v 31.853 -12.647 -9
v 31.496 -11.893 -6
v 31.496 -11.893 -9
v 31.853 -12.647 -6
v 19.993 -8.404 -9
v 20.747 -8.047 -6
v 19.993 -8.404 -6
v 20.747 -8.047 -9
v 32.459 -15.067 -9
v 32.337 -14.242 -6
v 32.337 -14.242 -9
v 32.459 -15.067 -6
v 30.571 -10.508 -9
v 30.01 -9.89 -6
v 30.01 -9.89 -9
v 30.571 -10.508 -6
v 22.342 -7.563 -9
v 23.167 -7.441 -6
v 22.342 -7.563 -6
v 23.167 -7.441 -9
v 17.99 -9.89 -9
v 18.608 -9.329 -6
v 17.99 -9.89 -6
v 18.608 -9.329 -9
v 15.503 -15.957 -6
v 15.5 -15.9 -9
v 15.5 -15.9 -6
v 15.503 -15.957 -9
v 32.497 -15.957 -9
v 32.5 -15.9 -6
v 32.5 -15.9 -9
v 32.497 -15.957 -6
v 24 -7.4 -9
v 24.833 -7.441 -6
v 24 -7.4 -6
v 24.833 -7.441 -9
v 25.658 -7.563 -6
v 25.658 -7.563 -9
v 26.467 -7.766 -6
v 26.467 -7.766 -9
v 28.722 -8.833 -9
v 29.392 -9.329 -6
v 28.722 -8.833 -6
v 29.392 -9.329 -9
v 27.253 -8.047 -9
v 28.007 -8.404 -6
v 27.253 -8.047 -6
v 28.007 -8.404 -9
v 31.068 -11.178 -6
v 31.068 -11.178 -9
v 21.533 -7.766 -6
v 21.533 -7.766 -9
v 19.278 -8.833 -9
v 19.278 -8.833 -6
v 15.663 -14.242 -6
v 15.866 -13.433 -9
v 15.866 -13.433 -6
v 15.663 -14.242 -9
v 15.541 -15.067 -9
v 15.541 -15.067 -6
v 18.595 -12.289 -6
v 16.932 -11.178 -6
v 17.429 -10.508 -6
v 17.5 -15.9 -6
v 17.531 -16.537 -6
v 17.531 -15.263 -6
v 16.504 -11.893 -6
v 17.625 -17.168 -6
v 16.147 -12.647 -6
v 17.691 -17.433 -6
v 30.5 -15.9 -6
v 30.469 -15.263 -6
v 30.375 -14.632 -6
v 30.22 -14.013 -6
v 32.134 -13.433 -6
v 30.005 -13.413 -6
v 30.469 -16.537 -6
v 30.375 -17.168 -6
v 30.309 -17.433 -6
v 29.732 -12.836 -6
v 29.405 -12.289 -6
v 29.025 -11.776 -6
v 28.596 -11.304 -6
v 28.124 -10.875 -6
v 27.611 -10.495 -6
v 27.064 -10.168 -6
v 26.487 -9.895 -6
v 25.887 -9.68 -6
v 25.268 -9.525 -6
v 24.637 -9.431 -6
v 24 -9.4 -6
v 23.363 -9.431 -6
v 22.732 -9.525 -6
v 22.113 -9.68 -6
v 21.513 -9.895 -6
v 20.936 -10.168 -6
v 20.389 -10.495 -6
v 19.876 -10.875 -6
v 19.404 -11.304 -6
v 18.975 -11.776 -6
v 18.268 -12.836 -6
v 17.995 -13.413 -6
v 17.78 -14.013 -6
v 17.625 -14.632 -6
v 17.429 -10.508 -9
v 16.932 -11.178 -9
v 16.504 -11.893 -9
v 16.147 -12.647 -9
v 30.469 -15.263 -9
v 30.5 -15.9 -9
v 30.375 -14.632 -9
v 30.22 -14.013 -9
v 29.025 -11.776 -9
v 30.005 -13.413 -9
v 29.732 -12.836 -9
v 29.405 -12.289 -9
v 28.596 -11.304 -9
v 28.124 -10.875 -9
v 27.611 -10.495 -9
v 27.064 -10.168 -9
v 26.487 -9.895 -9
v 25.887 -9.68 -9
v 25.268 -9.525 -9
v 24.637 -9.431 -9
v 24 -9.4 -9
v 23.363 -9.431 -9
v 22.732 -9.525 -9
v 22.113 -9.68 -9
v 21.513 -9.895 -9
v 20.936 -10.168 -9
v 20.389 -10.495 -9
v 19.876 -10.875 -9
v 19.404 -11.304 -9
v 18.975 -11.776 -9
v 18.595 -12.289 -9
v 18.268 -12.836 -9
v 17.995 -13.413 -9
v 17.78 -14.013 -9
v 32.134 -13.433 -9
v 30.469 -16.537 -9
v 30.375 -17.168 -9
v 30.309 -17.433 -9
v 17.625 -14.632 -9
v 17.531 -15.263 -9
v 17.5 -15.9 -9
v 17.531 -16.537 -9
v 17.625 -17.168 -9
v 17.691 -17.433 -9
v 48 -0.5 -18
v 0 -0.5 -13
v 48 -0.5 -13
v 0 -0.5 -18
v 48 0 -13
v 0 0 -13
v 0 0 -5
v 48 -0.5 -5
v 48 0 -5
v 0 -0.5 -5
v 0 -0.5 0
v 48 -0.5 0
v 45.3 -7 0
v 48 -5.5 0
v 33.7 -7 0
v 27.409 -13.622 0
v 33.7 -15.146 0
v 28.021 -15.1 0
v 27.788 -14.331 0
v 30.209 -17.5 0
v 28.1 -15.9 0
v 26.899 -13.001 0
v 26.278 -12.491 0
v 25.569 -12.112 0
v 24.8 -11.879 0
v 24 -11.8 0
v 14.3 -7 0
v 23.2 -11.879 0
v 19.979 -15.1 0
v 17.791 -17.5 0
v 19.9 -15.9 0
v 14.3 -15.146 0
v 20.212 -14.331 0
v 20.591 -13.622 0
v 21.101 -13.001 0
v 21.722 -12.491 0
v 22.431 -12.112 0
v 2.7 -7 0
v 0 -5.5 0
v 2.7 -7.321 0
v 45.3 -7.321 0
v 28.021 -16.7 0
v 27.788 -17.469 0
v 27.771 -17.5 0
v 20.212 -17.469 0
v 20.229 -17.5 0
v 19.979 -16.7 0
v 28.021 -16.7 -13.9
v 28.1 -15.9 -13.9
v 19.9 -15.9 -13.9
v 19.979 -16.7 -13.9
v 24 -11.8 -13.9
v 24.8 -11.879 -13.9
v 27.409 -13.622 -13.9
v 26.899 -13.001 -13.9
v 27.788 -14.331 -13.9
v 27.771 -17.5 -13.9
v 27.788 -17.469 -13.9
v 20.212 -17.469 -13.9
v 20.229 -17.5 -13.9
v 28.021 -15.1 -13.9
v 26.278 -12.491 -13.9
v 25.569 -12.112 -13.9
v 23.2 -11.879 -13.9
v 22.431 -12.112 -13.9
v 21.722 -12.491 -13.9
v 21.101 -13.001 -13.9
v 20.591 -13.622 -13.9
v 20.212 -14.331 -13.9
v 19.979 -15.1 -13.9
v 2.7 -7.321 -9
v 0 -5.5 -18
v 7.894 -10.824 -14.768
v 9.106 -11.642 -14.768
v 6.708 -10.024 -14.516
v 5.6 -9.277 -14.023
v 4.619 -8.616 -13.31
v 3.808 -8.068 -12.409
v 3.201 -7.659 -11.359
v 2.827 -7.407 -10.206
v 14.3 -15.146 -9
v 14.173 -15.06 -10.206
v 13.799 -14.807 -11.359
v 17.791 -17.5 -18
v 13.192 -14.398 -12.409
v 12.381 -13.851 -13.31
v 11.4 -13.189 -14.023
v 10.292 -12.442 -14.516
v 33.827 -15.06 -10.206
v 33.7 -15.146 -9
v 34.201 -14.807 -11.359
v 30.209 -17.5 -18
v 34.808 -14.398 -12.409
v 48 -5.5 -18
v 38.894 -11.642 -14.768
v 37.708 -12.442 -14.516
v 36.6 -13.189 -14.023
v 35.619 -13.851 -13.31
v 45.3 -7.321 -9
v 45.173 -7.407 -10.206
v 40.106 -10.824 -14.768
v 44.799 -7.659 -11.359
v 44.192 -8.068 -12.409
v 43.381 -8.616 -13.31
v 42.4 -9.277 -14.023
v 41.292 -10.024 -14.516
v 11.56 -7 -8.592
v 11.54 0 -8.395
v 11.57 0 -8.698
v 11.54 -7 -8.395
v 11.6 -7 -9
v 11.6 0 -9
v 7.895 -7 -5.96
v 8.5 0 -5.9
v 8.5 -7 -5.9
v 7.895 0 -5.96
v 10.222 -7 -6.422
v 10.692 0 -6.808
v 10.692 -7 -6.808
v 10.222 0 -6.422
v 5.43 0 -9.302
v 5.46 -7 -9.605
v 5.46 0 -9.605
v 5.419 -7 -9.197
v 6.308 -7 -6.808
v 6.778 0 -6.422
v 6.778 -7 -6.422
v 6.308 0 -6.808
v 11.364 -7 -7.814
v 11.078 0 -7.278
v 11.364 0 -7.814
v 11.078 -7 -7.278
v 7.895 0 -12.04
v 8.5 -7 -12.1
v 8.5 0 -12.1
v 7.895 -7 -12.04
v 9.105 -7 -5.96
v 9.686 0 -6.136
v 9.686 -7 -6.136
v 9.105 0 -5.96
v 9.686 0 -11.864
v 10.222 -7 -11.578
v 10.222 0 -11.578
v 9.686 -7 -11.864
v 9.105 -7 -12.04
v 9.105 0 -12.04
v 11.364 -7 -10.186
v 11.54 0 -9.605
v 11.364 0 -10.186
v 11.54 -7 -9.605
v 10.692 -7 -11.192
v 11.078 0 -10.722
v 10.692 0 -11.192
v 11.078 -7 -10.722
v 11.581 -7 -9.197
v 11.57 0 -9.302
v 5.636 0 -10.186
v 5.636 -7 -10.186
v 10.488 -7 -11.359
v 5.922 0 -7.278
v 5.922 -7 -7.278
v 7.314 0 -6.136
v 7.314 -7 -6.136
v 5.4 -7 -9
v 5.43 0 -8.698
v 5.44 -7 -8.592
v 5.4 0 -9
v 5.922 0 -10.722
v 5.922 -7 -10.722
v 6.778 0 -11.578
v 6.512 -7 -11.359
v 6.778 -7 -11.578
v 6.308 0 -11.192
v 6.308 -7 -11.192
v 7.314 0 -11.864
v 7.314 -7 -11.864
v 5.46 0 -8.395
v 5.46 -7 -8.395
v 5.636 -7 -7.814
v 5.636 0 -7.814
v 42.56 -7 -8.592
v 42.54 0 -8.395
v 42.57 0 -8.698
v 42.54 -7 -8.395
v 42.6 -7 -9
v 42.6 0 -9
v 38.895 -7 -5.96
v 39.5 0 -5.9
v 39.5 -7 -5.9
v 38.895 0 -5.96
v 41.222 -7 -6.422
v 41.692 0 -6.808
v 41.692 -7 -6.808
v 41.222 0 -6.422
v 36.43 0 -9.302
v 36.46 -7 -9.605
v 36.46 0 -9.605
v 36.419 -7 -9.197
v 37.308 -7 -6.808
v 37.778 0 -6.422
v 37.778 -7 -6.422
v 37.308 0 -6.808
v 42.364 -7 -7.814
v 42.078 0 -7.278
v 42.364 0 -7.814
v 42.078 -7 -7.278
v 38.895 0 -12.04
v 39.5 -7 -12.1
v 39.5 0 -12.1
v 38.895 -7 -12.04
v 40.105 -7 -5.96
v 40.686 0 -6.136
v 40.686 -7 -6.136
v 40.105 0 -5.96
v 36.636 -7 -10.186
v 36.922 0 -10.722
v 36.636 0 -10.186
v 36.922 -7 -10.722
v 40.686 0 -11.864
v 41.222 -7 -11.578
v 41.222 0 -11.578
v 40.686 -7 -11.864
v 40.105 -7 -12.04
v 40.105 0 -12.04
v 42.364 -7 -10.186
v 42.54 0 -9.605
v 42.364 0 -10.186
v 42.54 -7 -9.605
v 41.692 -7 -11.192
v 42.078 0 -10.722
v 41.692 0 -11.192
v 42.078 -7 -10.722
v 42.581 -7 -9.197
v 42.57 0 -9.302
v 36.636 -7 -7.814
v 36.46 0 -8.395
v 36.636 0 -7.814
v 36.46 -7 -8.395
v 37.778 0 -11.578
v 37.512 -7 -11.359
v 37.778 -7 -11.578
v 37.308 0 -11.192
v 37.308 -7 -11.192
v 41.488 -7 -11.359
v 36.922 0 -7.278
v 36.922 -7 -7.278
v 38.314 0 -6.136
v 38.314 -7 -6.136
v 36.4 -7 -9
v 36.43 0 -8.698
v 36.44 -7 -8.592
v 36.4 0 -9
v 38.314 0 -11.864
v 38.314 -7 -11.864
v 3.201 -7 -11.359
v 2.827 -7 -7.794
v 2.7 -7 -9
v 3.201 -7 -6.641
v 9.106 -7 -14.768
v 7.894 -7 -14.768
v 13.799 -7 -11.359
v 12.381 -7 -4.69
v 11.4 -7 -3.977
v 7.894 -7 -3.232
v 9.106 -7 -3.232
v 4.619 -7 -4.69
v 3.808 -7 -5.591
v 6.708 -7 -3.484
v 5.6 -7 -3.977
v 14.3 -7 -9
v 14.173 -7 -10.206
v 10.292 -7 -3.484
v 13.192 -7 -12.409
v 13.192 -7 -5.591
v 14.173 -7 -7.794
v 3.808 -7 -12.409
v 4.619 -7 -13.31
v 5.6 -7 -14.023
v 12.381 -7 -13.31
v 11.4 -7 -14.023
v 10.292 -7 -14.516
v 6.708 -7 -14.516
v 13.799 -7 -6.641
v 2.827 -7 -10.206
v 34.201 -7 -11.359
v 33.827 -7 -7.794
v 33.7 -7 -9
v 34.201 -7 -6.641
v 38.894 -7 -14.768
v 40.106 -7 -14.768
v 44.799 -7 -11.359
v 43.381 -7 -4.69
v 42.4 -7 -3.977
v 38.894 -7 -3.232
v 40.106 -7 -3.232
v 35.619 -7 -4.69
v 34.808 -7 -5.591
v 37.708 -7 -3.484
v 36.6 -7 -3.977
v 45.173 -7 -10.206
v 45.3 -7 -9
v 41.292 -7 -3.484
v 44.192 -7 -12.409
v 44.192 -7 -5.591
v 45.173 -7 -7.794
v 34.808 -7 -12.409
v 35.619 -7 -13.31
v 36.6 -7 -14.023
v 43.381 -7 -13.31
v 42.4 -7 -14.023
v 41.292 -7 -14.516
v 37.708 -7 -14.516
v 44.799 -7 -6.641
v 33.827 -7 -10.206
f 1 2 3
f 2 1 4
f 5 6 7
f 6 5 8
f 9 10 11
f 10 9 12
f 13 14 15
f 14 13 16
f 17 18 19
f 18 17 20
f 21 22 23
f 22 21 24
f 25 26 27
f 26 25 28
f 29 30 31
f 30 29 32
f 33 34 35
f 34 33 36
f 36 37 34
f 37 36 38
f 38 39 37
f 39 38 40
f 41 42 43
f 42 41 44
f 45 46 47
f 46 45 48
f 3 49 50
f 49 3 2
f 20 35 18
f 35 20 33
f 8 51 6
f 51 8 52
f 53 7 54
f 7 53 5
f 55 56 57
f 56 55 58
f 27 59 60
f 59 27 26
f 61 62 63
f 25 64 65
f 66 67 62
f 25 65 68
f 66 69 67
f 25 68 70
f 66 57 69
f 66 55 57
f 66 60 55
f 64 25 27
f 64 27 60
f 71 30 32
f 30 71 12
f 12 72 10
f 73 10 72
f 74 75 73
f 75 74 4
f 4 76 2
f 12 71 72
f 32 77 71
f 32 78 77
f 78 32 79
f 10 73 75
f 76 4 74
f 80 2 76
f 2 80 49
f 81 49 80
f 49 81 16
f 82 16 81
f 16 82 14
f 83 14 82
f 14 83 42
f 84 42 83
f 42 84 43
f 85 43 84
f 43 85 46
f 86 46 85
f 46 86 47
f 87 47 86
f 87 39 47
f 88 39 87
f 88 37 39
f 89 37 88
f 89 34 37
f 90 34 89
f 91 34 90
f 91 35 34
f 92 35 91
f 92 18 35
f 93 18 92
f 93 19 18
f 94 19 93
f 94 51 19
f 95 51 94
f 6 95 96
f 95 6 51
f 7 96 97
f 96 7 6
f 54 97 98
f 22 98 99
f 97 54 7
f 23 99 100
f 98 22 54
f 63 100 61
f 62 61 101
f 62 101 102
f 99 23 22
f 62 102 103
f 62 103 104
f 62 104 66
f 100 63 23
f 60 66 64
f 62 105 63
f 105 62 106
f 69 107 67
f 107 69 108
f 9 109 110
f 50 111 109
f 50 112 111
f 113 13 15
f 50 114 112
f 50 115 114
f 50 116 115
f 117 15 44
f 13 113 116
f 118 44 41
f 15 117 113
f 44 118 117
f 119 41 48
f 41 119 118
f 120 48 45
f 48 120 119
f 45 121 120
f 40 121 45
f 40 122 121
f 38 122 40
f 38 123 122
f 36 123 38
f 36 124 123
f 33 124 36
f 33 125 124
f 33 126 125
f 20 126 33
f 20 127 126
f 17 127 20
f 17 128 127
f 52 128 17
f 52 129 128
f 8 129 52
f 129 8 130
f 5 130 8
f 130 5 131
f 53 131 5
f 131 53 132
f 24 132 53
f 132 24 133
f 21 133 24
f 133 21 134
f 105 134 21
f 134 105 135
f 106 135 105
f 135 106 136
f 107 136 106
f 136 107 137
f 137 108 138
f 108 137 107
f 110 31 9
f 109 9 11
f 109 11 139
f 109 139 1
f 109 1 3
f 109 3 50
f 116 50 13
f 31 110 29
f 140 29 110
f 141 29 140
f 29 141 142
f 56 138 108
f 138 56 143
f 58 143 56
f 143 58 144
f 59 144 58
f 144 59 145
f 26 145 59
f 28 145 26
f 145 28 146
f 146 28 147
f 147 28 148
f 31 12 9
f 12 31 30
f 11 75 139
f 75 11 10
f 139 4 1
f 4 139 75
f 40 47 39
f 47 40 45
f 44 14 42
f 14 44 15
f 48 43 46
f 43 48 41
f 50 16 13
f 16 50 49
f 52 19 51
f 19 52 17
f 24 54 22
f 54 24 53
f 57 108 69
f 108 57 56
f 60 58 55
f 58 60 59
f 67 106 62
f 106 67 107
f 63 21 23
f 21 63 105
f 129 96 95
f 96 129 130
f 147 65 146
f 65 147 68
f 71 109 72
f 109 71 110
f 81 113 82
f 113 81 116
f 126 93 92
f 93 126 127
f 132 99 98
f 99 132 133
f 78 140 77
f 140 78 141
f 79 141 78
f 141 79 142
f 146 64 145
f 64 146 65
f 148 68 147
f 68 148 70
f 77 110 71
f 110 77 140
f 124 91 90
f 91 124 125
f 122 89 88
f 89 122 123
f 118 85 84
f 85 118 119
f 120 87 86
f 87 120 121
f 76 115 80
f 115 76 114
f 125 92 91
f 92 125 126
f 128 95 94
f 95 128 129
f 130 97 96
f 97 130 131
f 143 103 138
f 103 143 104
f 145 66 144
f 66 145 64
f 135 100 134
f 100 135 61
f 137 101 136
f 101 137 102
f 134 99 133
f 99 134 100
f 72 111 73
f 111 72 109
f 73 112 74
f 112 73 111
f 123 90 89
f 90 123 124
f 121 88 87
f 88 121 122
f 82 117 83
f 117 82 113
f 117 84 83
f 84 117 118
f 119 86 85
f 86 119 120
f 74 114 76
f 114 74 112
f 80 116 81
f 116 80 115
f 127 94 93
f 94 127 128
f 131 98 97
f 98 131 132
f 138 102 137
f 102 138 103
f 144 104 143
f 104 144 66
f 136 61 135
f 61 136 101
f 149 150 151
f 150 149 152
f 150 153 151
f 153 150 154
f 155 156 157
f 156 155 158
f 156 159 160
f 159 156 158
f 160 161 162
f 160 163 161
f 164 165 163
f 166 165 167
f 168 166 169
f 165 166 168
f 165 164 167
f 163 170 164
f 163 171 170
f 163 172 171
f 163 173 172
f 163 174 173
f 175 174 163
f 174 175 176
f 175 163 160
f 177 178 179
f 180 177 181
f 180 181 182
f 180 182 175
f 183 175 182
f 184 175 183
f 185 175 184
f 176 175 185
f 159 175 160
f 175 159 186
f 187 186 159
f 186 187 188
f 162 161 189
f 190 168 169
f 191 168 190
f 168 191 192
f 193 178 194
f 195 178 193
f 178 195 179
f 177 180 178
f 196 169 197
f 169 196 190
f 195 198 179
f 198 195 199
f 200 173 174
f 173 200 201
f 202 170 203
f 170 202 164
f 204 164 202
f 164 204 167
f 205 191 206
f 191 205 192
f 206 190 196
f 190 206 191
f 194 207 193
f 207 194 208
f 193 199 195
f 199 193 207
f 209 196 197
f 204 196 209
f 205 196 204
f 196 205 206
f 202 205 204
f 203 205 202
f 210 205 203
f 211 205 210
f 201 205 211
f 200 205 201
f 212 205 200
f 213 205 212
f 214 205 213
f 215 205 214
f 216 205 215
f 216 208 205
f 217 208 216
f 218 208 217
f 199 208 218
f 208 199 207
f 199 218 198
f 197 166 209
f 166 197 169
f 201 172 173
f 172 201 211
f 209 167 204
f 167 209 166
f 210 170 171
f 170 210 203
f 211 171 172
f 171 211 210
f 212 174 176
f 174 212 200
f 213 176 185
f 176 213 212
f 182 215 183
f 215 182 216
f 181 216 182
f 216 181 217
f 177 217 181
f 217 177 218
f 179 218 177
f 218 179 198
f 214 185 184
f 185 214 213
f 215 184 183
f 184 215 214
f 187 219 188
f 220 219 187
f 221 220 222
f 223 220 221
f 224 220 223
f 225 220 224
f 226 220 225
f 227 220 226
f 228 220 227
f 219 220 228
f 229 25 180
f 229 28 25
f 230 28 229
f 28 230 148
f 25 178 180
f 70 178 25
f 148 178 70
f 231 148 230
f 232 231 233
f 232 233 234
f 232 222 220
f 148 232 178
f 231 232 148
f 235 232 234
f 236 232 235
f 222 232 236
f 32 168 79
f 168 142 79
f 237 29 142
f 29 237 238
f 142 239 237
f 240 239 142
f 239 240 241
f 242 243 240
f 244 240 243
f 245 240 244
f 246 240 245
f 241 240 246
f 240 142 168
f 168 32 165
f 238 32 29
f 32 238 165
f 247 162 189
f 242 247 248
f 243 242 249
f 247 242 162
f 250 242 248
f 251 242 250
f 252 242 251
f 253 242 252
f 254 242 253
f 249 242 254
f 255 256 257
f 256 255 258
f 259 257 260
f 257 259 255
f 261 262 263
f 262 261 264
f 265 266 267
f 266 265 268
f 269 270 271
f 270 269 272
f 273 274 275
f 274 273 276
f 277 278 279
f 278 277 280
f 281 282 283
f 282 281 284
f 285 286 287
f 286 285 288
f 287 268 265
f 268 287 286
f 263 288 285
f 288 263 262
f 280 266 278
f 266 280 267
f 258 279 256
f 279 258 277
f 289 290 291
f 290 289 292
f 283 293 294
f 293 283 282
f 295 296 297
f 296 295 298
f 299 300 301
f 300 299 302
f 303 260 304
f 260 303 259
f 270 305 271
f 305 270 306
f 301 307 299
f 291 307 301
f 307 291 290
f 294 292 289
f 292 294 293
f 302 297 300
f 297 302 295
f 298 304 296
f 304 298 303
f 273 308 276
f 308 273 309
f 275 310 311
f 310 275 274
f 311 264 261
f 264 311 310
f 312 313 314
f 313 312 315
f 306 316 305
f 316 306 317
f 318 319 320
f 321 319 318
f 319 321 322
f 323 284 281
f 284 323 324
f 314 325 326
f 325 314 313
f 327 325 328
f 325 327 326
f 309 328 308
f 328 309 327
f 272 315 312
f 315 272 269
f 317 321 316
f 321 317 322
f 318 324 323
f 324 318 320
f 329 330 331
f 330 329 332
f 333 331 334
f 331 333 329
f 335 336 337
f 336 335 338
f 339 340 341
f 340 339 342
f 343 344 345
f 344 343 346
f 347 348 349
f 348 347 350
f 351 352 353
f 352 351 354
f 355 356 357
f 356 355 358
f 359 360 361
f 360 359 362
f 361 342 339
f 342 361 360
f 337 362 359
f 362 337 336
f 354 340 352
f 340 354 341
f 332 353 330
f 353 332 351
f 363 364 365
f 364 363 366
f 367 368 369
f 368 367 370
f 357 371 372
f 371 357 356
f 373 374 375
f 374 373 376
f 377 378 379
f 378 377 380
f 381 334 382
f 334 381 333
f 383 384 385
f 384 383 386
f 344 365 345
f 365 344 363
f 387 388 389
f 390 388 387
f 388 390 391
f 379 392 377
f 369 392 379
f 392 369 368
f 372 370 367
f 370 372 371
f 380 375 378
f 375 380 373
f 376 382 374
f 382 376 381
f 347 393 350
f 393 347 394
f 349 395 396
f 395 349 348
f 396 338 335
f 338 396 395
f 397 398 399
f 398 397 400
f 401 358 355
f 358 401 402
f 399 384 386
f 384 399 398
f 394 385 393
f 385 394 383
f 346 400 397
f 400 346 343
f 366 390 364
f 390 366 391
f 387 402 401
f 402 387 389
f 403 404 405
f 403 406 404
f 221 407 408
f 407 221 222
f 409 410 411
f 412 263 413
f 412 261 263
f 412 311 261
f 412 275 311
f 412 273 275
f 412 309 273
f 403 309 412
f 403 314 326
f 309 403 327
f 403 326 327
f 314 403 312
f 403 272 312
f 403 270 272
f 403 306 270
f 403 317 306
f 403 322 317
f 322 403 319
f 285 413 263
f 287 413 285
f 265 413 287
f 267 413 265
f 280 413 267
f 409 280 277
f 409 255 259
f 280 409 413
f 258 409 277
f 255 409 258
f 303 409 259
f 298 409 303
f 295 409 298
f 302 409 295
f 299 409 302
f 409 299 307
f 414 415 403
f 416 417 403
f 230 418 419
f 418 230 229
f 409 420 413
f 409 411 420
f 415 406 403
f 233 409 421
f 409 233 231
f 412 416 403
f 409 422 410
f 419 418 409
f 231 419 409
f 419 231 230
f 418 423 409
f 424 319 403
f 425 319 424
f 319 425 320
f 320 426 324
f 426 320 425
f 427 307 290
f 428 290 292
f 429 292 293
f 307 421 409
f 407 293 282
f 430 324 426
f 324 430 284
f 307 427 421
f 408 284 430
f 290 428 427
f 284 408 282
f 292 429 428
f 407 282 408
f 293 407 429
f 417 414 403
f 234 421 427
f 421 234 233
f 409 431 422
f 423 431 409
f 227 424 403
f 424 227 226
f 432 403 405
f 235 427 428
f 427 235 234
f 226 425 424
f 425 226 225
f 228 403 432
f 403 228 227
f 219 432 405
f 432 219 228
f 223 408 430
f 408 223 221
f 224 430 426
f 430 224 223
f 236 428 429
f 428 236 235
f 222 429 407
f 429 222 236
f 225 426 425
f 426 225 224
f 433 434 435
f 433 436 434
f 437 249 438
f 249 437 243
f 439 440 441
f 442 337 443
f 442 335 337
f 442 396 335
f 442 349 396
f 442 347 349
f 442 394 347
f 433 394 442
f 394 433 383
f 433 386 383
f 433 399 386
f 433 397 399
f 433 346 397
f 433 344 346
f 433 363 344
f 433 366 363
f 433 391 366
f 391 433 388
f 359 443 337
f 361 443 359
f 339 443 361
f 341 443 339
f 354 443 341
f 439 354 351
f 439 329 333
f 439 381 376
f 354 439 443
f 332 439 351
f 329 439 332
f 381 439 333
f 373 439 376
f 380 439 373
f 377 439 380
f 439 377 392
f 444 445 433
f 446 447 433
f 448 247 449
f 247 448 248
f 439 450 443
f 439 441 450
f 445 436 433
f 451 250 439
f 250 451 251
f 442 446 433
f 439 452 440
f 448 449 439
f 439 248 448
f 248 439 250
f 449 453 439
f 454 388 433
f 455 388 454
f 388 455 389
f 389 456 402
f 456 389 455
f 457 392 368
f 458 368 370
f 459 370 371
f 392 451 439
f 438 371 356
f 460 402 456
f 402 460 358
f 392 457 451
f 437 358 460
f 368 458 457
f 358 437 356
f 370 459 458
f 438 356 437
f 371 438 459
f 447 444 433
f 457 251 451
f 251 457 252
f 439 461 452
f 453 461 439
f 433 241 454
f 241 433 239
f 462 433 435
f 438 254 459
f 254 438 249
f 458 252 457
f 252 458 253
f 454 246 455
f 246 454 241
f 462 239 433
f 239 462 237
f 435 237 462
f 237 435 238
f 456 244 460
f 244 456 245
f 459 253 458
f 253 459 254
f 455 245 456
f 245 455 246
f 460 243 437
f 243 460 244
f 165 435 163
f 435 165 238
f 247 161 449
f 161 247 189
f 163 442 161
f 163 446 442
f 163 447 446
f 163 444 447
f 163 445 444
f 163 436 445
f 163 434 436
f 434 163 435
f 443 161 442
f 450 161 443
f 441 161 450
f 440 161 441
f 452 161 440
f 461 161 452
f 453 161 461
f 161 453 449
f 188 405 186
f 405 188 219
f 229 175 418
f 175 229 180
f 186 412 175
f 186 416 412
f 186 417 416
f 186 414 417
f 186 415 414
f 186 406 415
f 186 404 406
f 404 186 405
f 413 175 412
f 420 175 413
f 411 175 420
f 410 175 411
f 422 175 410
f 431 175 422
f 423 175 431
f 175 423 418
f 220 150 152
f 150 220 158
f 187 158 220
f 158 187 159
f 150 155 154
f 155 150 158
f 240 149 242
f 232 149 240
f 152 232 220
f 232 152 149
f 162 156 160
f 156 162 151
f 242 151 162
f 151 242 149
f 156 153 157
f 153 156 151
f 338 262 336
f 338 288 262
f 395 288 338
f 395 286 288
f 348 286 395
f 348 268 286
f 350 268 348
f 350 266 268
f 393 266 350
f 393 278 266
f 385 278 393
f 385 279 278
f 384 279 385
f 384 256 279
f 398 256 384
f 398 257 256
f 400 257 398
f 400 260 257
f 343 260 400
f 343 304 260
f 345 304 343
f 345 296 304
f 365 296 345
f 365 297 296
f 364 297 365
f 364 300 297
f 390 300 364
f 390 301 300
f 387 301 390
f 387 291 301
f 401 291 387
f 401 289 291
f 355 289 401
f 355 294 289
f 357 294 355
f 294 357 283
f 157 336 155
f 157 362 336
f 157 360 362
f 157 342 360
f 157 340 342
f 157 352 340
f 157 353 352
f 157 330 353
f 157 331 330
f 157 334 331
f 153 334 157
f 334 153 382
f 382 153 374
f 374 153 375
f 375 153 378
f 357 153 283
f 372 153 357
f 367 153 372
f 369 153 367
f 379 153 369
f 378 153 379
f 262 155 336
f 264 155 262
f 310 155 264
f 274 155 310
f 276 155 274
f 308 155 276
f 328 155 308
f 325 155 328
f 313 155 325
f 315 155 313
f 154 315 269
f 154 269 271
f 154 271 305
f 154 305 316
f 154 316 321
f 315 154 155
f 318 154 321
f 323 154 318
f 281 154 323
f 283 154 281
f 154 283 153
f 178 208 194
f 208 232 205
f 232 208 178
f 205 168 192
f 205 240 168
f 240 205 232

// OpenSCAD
// file: ../configuration.scad
/*
	Konfiguracni soubor 3D tiskarny RebeliX X2
	
	Sledujte nas na:		  
			www.RepRap4U.cz
			www.facebook.com/RebeliX.cz
			https://twitter.com/reprap4u
			https://plus.google.com/+Reprap4uCz-3Dtiskarna-RebeliX
*/

/*================ Slic3r nastaveni ==========================*/

// Vyska vrstvy pro tisknuti dilu [mm]
layer_height = 0.3;

// Sirka vytlacovaneho materialu [mm]
extrusion_width = 0.66; //Slic3r->Print Settings->Advanced->Default extrusion width

/*==================== M6 sroub ==============================*/

// Rezerva prumeru hlavy sroubu [mm]
space = 1;

// Prumer hlavy M6 sroubu (pricte se rezerva) [mm]
M6_head_diameter = 10.6+space;
//M6_head_diameter = 12+space;

// Vyska hlavy M6 sroubu (dulezite pro zapusteni hlavy sroubu do plastu) [mm]
M6_head_height = 3.6;
//M6_head_height = 4.5;

// Delka sroubu M6 [mm]
// M6x12
M6_lenght = 12;

/*=================== Nastaveni dilu =========================*/

// Posun Z zakladny
z_base_offset = 11;

// Tloustka rohovych spojek
// 5 mm => sroub M6x14 s podlozkou
// 3 mm => sroub M6x12 s podlozkou
coupler_thickness = 5;

// Prumer 8mm tyce
rod_8mm_d = 8.2;

// Posun drzacku mezi x-motor a x-end
x_holder_position = 6.5;

/*======================== Motory ============================*/

// Delka motoru (ovlivni dily a delky tyci pro osy Z a Y)
//SX17-1003LQFE (doporuceno hlavne na osu Z)
motor_length = 29.5;
//SX17-1003 (doporuceno hlavne na osu Z), SX17-0503LQEF
//motor_length = 34;
//SX17-1005
//motor_length = 40;
//SX17-0905 - zde je jiz problem s velkou vyskou motoru na ose Z - musi se upravit endstop-holder
//motor_length = 48;

/*================ Remeny a remenicky ========================*/

// GT2 
belt_tooth_distance = 2;
belt_tooth_ratio = 0.5;

// T2.5
//belt_tooth_distance = 2.5;
//belt_tooth_ratio = 0.68;
// main file
// RebeliX
//
// y-rod-holder
// GNU GPL v3
// Martin Neruda <neruda@reprap4u.cz>
// http://www.reprap4u.cz

include <../configuration.scad>

width = 48;
height = 18;
base_thickness = 7;
thickness = 17.5;
rod_diameter = 8;

module y_rod_holder_base(){
  cube([width,thickness,height]);
}

module y_cuts(){
  // Vyrez pro hlinikovy profil
  translate([width+0.1,0.5,(height/2)+4]) rotate([0,0,180]) cube([50,2,10]);
  translate([width+0.1,0.5,0]) rotate([0,0,180]) cube([50,2,(height/2)-4]);
  
  // Vyrez pro 8mm tyc
  translate([width/2,thickness - 1.6,-0.1]) cylinder(h=(height/2)+5,r=(rod_diameter/2)+0.1,$fn = 32);
  // Zkosene hrany
  translate([0,base_thickness-1.5,-0.1]) rotate([0,0,34]) cube([30,10,20]);
  translate([width,base_thickness-1.5,-0.1]) rotate([0,0,56]) cube([10,30,20]);
  // Otvory pro M6 srouby
  translate([8.5,0,height/2]) rotate([-90,0,0]) cylinder(h=40,r=3.1,$fn = 32,center=true);
  translate([width-8.5,0,height/2]) rotate([-90,0,0]) cylinder(h=40,r=3.1,$fn = 32,center=true);
  
  translate([8.5,base_thickness,height/2]) rotate([-90,0,0]) cylinder(r = M6_head_diameter/2, h = 20, $fn = 30);
  translate([width-8.5,base_thickness,height/2]) rotate([-90,0,0]) cylinder(r = M6_head_diameter/2, h = 20, $fn = 30);
 
  translate([width-8.5-M6_head_diameter/2,base_thickness,0]) cube([M6_head_diameter,10,height/2]);
  translate([8.5-M6_head_diameter/2,base_thickness,0]) cube([M6_head_diameter,10,height/2]);
  
  // Otvor pro zip pasku
  translate([width/2,thickness - 1.6,height/2 - 3]) difference(){
    cylinder(r=8.5,h=3,$fn=64);
    cylinder(r=6.5,h=3.1,$fn=64);
  }
}

rotate([180,0,0]) 
difference(){
	y_rod_holder_base();
	y_cuts();
}	
